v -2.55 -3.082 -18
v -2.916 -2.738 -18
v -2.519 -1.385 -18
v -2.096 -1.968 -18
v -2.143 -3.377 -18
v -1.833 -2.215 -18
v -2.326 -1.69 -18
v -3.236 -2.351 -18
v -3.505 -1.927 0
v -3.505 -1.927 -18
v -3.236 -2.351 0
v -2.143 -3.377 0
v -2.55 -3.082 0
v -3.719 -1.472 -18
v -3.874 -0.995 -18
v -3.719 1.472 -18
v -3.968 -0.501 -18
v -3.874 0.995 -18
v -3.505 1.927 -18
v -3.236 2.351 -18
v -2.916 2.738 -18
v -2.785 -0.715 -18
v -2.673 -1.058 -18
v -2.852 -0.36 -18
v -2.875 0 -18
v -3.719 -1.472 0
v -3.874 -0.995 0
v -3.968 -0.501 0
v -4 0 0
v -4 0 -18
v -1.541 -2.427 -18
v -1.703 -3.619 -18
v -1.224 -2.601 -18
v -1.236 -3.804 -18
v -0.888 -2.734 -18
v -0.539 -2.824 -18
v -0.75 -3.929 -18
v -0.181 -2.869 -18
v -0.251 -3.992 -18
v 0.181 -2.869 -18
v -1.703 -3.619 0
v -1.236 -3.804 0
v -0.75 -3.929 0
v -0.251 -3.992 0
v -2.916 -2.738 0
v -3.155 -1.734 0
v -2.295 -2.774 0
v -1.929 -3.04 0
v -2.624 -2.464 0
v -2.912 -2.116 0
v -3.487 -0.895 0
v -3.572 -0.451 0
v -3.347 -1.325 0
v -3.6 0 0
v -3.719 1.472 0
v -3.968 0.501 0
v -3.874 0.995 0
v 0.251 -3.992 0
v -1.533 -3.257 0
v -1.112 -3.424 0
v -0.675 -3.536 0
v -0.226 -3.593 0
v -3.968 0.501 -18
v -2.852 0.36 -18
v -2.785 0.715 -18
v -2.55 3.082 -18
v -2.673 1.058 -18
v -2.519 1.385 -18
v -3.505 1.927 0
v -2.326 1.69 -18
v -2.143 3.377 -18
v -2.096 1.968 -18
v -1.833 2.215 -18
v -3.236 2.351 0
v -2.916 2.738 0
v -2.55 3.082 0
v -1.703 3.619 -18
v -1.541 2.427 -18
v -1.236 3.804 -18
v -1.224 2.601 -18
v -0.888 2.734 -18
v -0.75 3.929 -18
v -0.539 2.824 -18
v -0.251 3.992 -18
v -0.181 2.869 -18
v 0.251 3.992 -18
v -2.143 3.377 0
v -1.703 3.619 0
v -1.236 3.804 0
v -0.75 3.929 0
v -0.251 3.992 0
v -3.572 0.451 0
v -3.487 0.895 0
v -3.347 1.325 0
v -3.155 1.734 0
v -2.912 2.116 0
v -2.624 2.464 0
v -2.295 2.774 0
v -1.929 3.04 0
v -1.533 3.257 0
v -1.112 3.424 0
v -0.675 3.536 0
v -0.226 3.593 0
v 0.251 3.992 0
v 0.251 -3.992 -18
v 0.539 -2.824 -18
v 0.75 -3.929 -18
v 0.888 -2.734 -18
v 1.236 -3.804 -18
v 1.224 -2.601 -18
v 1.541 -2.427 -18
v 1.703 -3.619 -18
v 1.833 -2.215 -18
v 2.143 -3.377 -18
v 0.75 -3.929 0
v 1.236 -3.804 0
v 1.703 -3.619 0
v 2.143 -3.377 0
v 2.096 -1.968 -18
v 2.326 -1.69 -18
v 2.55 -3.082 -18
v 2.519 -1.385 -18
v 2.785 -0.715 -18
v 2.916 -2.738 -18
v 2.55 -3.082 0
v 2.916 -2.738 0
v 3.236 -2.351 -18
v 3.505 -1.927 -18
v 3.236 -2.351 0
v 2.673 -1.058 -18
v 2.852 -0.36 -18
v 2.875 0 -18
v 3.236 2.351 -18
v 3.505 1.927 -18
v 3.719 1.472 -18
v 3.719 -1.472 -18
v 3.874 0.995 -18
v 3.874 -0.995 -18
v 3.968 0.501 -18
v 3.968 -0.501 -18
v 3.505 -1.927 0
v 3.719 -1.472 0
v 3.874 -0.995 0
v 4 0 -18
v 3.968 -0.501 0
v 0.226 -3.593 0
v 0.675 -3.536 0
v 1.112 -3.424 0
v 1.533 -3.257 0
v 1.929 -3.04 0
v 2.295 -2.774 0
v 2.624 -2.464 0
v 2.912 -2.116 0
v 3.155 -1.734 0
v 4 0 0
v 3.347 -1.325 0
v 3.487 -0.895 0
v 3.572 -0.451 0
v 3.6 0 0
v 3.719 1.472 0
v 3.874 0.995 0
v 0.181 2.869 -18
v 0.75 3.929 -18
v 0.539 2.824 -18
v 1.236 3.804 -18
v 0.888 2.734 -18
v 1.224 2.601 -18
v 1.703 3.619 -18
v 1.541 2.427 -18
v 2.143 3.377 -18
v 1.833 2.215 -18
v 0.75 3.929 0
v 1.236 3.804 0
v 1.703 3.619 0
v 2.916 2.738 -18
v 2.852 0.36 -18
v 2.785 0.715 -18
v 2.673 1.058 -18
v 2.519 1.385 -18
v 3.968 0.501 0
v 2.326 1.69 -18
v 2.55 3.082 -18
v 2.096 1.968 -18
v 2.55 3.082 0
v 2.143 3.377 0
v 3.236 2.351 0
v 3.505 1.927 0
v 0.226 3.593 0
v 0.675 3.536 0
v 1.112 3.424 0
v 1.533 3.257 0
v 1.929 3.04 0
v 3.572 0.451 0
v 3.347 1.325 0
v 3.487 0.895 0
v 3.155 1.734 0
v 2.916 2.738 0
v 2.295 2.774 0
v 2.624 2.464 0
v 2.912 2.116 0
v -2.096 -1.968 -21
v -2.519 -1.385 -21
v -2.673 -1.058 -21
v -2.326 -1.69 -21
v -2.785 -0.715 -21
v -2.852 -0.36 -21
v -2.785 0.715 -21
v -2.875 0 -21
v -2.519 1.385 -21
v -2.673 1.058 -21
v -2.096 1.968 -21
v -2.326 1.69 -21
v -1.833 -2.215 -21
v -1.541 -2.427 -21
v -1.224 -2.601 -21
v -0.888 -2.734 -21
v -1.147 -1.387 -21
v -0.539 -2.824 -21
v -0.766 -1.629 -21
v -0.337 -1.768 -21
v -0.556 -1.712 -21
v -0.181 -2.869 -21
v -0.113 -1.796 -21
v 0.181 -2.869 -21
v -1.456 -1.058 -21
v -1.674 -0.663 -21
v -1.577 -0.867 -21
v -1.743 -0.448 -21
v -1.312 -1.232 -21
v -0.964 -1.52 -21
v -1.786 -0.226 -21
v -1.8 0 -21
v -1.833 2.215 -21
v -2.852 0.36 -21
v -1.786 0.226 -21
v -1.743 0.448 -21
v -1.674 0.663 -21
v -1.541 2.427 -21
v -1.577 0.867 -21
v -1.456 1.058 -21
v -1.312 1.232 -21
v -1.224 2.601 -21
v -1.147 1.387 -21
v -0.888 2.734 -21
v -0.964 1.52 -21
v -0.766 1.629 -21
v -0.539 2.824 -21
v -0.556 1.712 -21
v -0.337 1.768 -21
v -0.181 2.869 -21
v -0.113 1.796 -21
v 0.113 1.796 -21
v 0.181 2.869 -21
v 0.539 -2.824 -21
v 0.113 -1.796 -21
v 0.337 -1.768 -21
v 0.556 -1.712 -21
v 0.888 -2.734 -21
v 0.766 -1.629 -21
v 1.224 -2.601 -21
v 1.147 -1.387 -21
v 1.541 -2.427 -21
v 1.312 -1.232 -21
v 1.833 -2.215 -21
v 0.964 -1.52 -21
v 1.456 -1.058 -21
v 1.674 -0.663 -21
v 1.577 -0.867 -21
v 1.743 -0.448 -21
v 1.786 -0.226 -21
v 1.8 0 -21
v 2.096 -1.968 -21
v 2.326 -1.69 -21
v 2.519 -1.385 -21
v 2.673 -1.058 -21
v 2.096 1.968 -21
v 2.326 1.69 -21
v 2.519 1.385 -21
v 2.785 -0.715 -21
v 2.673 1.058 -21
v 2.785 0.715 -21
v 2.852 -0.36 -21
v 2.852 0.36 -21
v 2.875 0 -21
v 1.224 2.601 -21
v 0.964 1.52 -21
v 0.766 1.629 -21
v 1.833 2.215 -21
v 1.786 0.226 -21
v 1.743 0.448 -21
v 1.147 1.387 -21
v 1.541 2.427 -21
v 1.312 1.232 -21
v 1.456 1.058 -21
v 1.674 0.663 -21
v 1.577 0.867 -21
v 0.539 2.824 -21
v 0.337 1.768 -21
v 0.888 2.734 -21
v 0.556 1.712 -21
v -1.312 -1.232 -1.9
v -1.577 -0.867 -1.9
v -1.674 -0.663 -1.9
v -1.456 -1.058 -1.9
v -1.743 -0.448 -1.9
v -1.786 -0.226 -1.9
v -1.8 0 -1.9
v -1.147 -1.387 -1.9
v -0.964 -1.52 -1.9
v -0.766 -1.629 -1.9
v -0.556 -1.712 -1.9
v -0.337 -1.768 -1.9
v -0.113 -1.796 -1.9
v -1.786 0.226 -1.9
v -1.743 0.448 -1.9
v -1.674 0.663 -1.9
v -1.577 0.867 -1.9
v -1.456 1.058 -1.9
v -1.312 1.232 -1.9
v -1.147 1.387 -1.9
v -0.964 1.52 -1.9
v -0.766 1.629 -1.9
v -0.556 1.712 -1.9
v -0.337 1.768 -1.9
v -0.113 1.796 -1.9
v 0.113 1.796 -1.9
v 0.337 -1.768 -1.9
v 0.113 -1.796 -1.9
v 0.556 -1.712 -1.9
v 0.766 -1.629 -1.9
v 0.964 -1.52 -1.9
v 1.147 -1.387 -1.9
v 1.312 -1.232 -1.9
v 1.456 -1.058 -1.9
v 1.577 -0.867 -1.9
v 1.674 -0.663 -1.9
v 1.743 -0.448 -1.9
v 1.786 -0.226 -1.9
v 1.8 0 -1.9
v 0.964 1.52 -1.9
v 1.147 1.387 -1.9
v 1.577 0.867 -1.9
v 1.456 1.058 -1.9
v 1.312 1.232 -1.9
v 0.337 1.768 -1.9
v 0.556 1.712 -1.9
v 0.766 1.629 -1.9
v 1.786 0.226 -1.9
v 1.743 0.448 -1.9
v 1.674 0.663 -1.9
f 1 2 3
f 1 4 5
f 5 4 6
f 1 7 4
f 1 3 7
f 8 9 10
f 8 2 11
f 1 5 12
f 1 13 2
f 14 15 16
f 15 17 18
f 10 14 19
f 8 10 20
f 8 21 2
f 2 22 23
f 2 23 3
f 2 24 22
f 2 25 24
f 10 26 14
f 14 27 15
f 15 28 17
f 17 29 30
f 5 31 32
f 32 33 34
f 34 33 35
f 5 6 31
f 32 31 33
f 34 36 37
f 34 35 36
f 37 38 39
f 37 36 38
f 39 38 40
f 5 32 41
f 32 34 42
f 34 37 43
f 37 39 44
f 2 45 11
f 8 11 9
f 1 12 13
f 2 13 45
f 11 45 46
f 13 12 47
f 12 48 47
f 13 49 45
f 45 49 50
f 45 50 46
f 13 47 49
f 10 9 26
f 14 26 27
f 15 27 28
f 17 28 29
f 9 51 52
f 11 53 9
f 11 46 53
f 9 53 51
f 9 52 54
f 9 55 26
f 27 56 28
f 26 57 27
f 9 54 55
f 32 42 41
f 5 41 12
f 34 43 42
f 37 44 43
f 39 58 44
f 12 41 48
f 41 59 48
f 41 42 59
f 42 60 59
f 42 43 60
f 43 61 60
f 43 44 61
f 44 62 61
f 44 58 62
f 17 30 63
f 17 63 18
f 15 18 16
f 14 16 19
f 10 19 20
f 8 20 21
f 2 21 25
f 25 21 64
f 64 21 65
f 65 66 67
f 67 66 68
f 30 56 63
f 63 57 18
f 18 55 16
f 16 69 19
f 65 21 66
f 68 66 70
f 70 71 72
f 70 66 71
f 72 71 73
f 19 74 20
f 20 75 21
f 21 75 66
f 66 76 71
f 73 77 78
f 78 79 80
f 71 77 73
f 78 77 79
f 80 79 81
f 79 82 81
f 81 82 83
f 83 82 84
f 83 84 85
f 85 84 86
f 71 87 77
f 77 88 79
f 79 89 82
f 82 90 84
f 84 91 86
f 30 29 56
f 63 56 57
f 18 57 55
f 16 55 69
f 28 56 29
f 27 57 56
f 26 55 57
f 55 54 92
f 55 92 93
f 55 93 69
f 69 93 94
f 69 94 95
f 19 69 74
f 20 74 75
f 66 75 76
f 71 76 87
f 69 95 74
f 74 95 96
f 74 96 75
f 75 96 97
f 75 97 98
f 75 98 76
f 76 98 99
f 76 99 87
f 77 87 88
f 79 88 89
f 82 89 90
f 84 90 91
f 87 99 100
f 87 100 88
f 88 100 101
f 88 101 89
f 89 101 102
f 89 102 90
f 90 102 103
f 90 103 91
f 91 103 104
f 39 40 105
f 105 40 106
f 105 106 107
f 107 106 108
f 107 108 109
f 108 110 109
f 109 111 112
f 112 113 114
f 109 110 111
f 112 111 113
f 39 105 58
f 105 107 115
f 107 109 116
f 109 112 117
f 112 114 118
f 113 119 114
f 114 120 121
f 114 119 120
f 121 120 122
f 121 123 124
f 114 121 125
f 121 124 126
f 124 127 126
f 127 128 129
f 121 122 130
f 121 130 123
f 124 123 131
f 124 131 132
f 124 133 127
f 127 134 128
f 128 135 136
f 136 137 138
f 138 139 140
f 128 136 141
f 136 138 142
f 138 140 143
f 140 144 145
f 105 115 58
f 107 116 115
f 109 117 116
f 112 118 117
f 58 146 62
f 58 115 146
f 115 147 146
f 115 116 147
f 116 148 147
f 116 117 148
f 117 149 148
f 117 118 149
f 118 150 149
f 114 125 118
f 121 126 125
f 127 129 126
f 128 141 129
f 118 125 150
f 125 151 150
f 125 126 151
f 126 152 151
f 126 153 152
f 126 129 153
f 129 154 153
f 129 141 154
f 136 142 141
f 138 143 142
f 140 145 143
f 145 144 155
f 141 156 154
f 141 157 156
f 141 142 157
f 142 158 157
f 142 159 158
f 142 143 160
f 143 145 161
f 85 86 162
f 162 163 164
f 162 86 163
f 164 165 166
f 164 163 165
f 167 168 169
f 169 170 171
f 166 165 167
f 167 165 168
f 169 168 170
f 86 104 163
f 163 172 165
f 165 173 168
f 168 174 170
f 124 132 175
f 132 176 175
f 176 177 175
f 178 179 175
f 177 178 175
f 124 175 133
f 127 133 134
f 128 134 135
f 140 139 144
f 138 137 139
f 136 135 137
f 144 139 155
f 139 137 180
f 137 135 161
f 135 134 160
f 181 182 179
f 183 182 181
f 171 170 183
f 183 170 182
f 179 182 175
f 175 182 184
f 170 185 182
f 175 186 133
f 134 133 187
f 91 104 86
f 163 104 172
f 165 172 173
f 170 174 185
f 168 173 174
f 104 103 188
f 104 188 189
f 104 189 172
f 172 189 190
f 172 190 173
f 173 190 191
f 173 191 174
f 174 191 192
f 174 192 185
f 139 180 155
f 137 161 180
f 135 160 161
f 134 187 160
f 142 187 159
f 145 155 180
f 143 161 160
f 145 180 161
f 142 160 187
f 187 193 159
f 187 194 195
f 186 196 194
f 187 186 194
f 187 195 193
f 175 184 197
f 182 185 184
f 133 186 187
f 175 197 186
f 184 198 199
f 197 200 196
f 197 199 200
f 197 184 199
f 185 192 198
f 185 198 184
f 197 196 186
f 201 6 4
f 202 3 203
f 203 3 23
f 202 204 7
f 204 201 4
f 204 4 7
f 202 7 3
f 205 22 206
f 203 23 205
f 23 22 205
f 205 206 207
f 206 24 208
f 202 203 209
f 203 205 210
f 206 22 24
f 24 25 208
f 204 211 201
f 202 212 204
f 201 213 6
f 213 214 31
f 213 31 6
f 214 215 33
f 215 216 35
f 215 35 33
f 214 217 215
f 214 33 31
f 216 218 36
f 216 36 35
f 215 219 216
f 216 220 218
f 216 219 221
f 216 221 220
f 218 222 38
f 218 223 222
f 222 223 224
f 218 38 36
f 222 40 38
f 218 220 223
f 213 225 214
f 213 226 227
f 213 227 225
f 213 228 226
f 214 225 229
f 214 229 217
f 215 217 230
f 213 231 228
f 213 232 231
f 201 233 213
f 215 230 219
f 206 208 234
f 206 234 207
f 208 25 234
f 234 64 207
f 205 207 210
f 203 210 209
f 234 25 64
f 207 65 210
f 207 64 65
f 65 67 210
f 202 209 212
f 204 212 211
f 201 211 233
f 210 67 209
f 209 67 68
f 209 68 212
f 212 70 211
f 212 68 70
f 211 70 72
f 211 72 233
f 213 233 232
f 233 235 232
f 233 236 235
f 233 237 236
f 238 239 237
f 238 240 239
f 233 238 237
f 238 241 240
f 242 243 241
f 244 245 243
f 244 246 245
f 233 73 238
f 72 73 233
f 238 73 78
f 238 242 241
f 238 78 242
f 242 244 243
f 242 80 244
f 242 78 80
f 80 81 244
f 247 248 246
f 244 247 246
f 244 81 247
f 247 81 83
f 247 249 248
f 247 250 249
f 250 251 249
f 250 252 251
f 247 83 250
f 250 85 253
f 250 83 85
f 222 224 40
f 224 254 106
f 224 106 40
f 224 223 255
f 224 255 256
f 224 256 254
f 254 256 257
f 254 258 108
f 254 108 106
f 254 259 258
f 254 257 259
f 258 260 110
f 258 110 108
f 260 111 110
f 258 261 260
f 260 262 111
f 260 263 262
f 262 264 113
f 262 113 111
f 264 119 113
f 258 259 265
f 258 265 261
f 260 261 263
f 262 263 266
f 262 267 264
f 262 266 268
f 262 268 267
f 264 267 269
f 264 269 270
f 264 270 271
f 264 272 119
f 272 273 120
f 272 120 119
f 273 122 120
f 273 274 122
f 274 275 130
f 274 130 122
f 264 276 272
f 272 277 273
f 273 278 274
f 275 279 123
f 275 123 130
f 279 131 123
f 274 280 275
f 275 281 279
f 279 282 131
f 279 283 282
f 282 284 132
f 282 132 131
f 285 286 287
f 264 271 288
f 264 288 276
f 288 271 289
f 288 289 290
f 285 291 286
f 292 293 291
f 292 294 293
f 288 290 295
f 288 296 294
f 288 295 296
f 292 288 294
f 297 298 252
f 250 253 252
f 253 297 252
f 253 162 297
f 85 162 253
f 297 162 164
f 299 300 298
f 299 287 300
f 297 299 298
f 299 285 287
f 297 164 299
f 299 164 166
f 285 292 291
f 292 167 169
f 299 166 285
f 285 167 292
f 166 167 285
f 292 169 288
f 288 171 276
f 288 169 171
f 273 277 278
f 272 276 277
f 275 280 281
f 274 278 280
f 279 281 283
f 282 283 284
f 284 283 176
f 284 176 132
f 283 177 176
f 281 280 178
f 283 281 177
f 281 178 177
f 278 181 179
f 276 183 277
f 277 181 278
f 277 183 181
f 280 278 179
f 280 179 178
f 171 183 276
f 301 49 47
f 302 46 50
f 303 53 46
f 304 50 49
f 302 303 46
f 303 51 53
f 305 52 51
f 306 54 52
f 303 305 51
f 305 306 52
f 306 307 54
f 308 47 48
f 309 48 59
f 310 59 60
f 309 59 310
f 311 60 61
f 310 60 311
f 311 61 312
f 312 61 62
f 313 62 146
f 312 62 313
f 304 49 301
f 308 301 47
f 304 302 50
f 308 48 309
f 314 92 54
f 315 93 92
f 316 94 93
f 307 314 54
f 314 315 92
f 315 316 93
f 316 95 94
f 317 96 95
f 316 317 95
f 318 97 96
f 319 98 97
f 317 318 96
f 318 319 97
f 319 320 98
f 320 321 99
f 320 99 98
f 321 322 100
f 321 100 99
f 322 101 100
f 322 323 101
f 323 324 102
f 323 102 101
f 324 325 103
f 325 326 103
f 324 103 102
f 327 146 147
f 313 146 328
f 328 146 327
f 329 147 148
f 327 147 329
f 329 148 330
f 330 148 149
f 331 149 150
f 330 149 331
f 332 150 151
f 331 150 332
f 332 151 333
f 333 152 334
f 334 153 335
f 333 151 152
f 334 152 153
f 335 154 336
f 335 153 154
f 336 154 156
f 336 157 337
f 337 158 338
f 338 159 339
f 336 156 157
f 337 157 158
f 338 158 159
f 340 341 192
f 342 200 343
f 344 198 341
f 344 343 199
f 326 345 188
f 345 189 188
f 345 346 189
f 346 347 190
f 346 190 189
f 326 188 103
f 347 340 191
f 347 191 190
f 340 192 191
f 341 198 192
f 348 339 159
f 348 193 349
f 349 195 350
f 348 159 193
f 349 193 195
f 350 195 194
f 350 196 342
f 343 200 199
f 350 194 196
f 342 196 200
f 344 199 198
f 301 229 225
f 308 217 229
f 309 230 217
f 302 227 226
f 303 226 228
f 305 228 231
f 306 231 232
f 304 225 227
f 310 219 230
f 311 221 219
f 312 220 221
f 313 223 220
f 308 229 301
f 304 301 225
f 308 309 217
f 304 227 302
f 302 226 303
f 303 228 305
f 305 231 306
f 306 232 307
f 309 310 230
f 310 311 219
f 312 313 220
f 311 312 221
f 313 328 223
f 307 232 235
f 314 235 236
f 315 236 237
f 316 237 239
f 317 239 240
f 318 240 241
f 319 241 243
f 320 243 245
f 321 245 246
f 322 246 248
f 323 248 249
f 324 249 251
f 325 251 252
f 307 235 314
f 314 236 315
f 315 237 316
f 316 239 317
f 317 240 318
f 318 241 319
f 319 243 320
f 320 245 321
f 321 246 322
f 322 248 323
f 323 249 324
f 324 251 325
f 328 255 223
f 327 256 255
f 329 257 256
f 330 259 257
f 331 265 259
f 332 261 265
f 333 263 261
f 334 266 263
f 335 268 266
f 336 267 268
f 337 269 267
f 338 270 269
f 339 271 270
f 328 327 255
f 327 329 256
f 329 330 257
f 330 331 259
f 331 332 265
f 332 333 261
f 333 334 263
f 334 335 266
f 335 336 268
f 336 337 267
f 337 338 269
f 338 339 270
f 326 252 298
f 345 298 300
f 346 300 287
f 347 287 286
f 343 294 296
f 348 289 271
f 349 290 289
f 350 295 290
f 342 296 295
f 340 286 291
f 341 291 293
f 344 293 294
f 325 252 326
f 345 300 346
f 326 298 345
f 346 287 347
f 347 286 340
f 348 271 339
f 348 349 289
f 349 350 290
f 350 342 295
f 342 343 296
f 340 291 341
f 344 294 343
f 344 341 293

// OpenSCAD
$fn = 50;

difference() {
	union() {
		translate(v = [0, 0, -18.0]) {
			cylinder(h = 18, r = 4.0);
		}
		#translate(v = [0, 0, -21.0]) {
			cylinder(h = 21, r = 2.875);
		}
	}
	union() {
		translate(v = [0, 0, 0]) {
			rotate(a = [0, 0, 0]) {
				difference() {
					union() {
						translate(v = [0, 0, -21.0]) {
							cylinder(h = 21, r = 1.5);
						}
						translate(v = [0, 0, -1.9]) {
							cylinder(h = 1.9, r1 = 1.8, r2 = 3.6);
						}
						translate(v = [0, 0, -21.0]) {
							cylinder(h = 21, r = 1.8);
						}
						translate(v = [0, 0, -21.0]) {
							cylinder(h = 21, r = 1.5);
						}
					}
					union();
				}
			}
		}
	}
}
